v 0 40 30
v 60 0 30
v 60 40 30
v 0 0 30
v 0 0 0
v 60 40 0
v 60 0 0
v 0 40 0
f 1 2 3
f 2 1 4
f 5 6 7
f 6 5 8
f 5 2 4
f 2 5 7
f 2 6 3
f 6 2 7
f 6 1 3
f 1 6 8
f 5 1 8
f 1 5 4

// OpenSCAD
// 長方塊（block）— 由 ortho_lib_work/objects.py 產生，請改 objects.py 後重建
// 長 60、深 40、高 30 的長方體。
union() {
    translate([0,0,0]) cube([60,40,30]);
}
